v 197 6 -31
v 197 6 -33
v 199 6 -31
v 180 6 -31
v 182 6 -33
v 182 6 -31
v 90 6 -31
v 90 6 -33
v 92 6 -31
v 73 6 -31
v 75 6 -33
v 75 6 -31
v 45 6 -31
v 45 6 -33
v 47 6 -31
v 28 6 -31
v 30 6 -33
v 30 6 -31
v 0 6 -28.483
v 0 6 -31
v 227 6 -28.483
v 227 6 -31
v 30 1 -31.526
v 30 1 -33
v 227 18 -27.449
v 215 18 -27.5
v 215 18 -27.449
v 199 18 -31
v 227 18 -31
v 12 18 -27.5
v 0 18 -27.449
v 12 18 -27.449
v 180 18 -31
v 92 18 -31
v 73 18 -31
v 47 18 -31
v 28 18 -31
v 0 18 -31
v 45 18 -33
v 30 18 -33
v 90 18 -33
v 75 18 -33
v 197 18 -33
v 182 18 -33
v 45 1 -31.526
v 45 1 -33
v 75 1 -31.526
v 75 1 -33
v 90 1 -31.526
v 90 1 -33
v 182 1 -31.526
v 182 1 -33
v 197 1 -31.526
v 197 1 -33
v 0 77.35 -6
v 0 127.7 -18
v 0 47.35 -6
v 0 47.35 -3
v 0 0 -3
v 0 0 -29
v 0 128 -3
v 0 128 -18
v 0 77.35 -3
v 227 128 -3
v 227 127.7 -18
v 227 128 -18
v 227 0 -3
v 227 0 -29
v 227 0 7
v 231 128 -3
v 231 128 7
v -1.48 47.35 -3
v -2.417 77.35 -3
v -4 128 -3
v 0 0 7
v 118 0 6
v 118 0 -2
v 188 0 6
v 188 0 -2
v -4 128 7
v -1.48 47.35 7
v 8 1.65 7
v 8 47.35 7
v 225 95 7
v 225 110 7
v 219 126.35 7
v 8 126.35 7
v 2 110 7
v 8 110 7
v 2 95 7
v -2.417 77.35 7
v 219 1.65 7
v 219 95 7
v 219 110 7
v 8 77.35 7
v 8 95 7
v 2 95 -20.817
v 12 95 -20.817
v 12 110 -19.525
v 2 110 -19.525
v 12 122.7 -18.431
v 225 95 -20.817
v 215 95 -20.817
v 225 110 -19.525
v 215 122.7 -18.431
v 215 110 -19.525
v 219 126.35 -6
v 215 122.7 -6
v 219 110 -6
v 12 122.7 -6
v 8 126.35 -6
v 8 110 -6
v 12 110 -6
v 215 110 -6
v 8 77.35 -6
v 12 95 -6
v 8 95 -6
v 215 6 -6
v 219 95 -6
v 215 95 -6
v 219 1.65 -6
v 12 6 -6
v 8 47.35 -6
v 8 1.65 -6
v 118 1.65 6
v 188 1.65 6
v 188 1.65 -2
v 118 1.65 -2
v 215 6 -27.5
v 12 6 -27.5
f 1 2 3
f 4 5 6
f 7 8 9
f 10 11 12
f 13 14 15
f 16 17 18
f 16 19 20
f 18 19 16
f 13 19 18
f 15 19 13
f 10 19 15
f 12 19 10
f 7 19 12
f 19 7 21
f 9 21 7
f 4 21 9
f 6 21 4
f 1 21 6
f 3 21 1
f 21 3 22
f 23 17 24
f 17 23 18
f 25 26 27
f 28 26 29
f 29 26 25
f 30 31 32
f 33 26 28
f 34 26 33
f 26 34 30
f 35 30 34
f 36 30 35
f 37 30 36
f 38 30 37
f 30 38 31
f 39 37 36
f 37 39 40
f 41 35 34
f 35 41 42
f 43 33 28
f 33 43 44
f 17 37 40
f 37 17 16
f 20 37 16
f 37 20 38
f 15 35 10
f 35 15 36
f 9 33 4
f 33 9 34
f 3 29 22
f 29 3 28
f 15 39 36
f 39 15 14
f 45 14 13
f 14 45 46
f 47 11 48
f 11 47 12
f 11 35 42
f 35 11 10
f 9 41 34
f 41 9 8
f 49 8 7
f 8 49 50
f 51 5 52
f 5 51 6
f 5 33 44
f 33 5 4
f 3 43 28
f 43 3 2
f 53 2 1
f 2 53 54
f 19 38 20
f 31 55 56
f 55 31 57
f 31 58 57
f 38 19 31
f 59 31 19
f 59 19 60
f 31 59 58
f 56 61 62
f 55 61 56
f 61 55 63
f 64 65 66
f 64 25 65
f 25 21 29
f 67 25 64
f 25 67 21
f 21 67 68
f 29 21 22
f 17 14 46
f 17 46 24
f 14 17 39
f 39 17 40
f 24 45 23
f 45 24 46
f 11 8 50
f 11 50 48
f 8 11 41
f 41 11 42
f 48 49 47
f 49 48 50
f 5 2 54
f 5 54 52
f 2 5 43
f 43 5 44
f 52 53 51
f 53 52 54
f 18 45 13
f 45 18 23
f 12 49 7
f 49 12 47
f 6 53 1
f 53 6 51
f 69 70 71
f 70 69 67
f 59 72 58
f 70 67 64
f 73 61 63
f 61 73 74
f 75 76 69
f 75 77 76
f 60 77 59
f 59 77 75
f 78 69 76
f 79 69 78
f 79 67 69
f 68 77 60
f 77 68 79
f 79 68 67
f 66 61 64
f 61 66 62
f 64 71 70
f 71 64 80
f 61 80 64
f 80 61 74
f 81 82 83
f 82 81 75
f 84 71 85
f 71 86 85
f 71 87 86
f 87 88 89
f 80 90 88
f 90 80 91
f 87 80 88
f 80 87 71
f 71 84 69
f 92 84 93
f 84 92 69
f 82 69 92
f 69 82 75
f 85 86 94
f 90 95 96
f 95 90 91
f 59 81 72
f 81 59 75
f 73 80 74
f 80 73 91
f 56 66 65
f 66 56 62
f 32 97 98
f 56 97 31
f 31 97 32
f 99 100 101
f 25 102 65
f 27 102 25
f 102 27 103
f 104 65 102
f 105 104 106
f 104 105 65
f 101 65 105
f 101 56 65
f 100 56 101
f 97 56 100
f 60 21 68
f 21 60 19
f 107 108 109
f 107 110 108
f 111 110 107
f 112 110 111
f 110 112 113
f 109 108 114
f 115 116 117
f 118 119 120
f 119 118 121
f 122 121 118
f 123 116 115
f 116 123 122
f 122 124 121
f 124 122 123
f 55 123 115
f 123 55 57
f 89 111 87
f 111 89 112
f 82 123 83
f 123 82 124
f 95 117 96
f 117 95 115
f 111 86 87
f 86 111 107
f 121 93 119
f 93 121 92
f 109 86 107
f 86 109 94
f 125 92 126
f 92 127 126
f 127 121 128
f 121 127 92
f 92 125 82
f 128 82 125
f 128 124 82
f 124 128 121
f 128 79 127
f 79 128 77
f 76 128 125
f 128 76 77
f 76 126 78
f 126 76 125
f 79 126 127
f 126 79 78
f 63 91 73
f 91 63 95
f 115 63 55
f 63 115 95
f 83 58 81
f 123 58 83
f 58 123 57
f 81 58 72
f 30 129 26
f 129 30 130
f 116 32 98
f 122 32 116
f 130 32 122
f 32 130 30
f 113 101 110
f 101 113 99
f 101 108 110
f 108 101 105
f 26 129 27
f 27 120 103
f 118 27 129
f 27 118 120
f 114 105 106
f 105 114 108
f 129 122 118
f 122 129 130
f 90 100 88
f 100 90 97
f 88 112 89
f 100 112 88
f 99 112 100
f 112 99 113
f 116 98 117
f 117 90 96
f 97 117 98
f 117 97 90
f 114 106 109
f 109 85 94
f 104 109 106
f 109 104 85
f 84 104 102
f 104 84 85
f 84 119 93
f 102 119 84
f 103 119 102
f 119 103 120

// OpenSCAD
fascia_top_width = 235;
fascia_bottom_width = 227;
fascia_height = 128;
fascia_depth = 5;

fascia_top_bottom_width_delta = fascia_top_width - fascia_bottom_width;

tablet_width = 211;
tablet_height = 124.7;
tablet_depth = 8;

fascia_bottom_tablet_width_delta = fascia_bottom_width - tablet_width;
fascia_tablet_height_delta = fascia_height - tablet_height;

sony_width = 182;
sony_depth = 133;
sony_front_height = 103;
sony_rear_height = 53;
sony_rear_depth = 110;
sony_front_depth = sony_depth - sony_rear_depth;

fascia_bottom_sony_width_delta = fascia_bottom_width - sony_width;
fascia_sony_front_height_delta = fascia_height - sony_front_height;


// Side flares to fill in the entire gap
module side_flares() {
    color("red")
        translate([0, 0, -fascia_depth+2])
            linear_extrude(fascia_depth+5)
                polygon(points=[
                    [0, 0], // bottom left
                    [fascia_bottom_width, 0], // bottom right
                    [231, fascia_height], // top right
                    [-(fascia_top_bottom_width_delta / 2), fascia_height] // top left
                ]);
}

// Usable area
module fascia_area() {
    color("yellow")
        translate([0, 0, -fascia_depth+2])
            linear_extrude(fascia_depth+5)
                square([fascia_bottom_width, fascia_height]);
}





module hook() {
    translate([0, 17, 0])
        rotate([270, 0, 270])
            union() {
                // Base where the triangle hook part sits
                linear_extrude(3)
                    square([11, 53+11]);

                // Thicker part joining to fascia
                color("red")
                    translate([11, 36, 0])
                        rotate([0, 0, 180])
                            linear_extrude(3)
                                polygon(points=[
                                    [0, 0],       
                                    [11, 0],      
                                    [17, 36],    
                                    [-6, 36]     
                                ]);

                // Triangle hook part
                translate([0, 52, 0])
                    rotate([0, 90, 0])
                        linear_extrude(11)
                            polygon(points=[
                                [0, 0],     // bottom-left
                                [3, 0],    // bottom-right
                                [0, 12]    // top (centered)
                            ]);
            }
}


    

module left_hook() {
    translate([0, 41, 0])
        union() {
            translate([0, 0, -2])
                color("blue")
                    linear_extrude(2)
                        square([19, 23]);

            translate([16, 0, 0])
            union() {
                translate([0, 0, -8])    
                    hook();
                
                translate([0, 0, -8])
                    color("green")
                        linear_extrude(8)
                            square([3, 23]);
            }
        }
}

module hooks() {
    union() {
        left_hook();

        translate([208, 41, 0])
            translate([19, 64, 0])
                rotate([0, 0, 180])
                    left_hook();

        // Connecting material for test fits
        /*translate([0, 45, 0])
        color("orange")
            linear_extrude(2)
                square([227, 10]);*/
    }
}


difference() {
    union() {   
        difference() {
            union() {
                side_flares();
                fascia_area();
                
                //sony();
                
                //translate([0, 0, -8])
                //    tablet_back();
                
                translate([0, 0, -18])
                    linear_extrude(15)
                        square([fascia_bottom_width, fascia_height]);
                
                translate([0, 0, -18])
                    rotate([90, 90, 90])
                        linear_extrude(fascia_bottom_width)
                            polygon(points = [
                                [0,0],
                                [11,0],
                                [0,tablet_height+3]
                            ]);
                
                // Top hooks which just get in the way, bolt should secure it better
                 /*top_hook();
                 translate([fascia_top_width - 16, 0, 0])
                    top_hook();*/
                    
                 bottom_hook();
                 
                 
            };
            
            translate([0, 0, -6])
                tablet();
            
            translate([12, 6, -27.5])
                color("green")
                    linear_extrude(50)
                        square([tablet_width-8, tablet_height-8]);
            
            bolt_hole();
            translate([fascia_top_width-27, 0, 0])
                bolt_hole();
            
            
           
            
        };
        
        
        
        //hooks();
        
    }
    
    // Delete 90% for test print
    //translate([50, -50, -50])
     //   linear_extrude(100)
      //      square([300,300]);
    //color("red")
    //     translate([-25, 25, -35])
    //        linear_extrude(50)
    //            square([50,80]);
    
}

module bolt_hole() {
    color("pink")
        translate([2, (fascia_height - 21) - 12, -30])
        linear_extrude(50)
            square([15, 15]);
}

module bottom_hook() {
    
        translate([0, 6, -31])
    difference() {
        union() {
            color("pink")
                linear_extrude(4.5)
                    square([fascia_bottom_width, 12]);
            color("red")
                translate([30, -5, -2])
                    linear_extrude(2)
                        square([15,17]);
            color("pink")
            translate([75, -5, -2])
                linear_extrude(2)
                    square([15,17]);
            color("pink")
            translate([(fascia_bottom_width-15)-30, -5, -2])
                linear_extrude(2)
                    square([15,17]);
            
            bottom_hook_triangle_support_duo();
            translate([45, 0, 0])
                bottom_hook_triangle_support_duo();
            translate([fascia_bottom_width-75, 0, 0])
                bottom_hook_triangle_support_duo();
            
            
        }
        
        bottom_hook_angled_cutout();
            translate([45, 0, 0])
        bottom_hook_angled_cutout();
            translate([fascia_bottom_width-75, 0, 0])
        bottom_hook_angled_cutout();
    }
}

module bottom_hook_angled_cutout() {
    color("lightgreen")
        rotate([6, 0, 0])
            translate([30, -6, 0])
                linear_extrude(3)
                    square([15, 6]);
}

module bottom_hook_triangle_support_duo() {
    bottom_hook_triangle_support();
    translate([75, 12, 0])
        rotate([180, 180, 0])
            bottom_hook_triangle_support();
}

module bottom_hook_triangle_support() {
    color("yellow")
        translate([30, 0, 0])
            rotate([270, 90, 0])
                linear_extrude(12)
                    polygon(points = [
                        [0, 0],
                        [2, 0],
                        [0, 2],
                    ]);
}

module top_hook() {
        translate([0, (fascia_height-3), -26])
            union() {
                color("blue")
                    linear_extrude(8)
                        square([8, 3]);
                color("yellow")
                    translate([8, 0, 8])
                        rotate([180, 90, 0])
                            linear_extrude(8)
                                polygon(points = [
                                    [0, 0],
                                    [2, 0],
                                    [0, 2],
                                ]);
                color("green")
                    translate([0, 0, 0])
                        rotate([180, 270, 0])
                            linear_extrude(8)
                                polygon(points = [
                                    [0, 0],
                                    [2, 0],
                                    [0, 3.5 ],
                                ]);
            }
}


module tablet() {
    union() {
        // area
        translate([fascia_bottom_tablet_width_delta/2, fascia_tablet_height_delta / 2, 0])
            color("gray")    
                linear_extrude(tablet_depth+50)
                    square([tablet_width, tablet_height]);
        // volume controls
        translate([118, 0, 4])
            linear_extrude(8)
                square([70, 30]);
        // camera bump
        //translate([190, 92, -16])
        //    linear_extrude(20)
        //        square([20, 38]);
        // charging port
        translate([-3, (tablet_height-30)/2, 0]) // TODO: put x back to 0 to not leave gap in fascia
            linear_extrude(20) // TODO: reduce height to not leave a gap in the fascia
                square([30, 30]);
    }
}

module tablet_back() {
    //color("black")
    translate([fascia_bottom_tablet_width_delta/2, fascia_tablet_height_delta / 2, 0])
        union() {
            difference() {
                color("orange")
                translate([-3, -2, 0])
                linear_extrude(5)
                    square([tablet_width+6, tablet_height+4]);
                //color("white")
                //translate([2, 2, 0])
                //    linear_extrude(6)
                //        square([tablet_width-4, tablet_height-4]);
            }
        }
}

module sony() {
    translate([fascia_bottom_sony_width_delta/2, fascia_sony_front_height_delta / 2, 0])
        translate([0, sony_front_height, 0])
                rotate([180, 0, 0])
                    color("purple")
                        union() {    
                            linear_extrude(sony_front_depth)
                                square([sony_width, sony_front_height]);
                            translate([0, 0, sony_front_depth])
                                linear_extrude(sony_rear_depth)
                                    square([sony_width, sony_rear_height]);
                        }
}
    
    
    
    
    
